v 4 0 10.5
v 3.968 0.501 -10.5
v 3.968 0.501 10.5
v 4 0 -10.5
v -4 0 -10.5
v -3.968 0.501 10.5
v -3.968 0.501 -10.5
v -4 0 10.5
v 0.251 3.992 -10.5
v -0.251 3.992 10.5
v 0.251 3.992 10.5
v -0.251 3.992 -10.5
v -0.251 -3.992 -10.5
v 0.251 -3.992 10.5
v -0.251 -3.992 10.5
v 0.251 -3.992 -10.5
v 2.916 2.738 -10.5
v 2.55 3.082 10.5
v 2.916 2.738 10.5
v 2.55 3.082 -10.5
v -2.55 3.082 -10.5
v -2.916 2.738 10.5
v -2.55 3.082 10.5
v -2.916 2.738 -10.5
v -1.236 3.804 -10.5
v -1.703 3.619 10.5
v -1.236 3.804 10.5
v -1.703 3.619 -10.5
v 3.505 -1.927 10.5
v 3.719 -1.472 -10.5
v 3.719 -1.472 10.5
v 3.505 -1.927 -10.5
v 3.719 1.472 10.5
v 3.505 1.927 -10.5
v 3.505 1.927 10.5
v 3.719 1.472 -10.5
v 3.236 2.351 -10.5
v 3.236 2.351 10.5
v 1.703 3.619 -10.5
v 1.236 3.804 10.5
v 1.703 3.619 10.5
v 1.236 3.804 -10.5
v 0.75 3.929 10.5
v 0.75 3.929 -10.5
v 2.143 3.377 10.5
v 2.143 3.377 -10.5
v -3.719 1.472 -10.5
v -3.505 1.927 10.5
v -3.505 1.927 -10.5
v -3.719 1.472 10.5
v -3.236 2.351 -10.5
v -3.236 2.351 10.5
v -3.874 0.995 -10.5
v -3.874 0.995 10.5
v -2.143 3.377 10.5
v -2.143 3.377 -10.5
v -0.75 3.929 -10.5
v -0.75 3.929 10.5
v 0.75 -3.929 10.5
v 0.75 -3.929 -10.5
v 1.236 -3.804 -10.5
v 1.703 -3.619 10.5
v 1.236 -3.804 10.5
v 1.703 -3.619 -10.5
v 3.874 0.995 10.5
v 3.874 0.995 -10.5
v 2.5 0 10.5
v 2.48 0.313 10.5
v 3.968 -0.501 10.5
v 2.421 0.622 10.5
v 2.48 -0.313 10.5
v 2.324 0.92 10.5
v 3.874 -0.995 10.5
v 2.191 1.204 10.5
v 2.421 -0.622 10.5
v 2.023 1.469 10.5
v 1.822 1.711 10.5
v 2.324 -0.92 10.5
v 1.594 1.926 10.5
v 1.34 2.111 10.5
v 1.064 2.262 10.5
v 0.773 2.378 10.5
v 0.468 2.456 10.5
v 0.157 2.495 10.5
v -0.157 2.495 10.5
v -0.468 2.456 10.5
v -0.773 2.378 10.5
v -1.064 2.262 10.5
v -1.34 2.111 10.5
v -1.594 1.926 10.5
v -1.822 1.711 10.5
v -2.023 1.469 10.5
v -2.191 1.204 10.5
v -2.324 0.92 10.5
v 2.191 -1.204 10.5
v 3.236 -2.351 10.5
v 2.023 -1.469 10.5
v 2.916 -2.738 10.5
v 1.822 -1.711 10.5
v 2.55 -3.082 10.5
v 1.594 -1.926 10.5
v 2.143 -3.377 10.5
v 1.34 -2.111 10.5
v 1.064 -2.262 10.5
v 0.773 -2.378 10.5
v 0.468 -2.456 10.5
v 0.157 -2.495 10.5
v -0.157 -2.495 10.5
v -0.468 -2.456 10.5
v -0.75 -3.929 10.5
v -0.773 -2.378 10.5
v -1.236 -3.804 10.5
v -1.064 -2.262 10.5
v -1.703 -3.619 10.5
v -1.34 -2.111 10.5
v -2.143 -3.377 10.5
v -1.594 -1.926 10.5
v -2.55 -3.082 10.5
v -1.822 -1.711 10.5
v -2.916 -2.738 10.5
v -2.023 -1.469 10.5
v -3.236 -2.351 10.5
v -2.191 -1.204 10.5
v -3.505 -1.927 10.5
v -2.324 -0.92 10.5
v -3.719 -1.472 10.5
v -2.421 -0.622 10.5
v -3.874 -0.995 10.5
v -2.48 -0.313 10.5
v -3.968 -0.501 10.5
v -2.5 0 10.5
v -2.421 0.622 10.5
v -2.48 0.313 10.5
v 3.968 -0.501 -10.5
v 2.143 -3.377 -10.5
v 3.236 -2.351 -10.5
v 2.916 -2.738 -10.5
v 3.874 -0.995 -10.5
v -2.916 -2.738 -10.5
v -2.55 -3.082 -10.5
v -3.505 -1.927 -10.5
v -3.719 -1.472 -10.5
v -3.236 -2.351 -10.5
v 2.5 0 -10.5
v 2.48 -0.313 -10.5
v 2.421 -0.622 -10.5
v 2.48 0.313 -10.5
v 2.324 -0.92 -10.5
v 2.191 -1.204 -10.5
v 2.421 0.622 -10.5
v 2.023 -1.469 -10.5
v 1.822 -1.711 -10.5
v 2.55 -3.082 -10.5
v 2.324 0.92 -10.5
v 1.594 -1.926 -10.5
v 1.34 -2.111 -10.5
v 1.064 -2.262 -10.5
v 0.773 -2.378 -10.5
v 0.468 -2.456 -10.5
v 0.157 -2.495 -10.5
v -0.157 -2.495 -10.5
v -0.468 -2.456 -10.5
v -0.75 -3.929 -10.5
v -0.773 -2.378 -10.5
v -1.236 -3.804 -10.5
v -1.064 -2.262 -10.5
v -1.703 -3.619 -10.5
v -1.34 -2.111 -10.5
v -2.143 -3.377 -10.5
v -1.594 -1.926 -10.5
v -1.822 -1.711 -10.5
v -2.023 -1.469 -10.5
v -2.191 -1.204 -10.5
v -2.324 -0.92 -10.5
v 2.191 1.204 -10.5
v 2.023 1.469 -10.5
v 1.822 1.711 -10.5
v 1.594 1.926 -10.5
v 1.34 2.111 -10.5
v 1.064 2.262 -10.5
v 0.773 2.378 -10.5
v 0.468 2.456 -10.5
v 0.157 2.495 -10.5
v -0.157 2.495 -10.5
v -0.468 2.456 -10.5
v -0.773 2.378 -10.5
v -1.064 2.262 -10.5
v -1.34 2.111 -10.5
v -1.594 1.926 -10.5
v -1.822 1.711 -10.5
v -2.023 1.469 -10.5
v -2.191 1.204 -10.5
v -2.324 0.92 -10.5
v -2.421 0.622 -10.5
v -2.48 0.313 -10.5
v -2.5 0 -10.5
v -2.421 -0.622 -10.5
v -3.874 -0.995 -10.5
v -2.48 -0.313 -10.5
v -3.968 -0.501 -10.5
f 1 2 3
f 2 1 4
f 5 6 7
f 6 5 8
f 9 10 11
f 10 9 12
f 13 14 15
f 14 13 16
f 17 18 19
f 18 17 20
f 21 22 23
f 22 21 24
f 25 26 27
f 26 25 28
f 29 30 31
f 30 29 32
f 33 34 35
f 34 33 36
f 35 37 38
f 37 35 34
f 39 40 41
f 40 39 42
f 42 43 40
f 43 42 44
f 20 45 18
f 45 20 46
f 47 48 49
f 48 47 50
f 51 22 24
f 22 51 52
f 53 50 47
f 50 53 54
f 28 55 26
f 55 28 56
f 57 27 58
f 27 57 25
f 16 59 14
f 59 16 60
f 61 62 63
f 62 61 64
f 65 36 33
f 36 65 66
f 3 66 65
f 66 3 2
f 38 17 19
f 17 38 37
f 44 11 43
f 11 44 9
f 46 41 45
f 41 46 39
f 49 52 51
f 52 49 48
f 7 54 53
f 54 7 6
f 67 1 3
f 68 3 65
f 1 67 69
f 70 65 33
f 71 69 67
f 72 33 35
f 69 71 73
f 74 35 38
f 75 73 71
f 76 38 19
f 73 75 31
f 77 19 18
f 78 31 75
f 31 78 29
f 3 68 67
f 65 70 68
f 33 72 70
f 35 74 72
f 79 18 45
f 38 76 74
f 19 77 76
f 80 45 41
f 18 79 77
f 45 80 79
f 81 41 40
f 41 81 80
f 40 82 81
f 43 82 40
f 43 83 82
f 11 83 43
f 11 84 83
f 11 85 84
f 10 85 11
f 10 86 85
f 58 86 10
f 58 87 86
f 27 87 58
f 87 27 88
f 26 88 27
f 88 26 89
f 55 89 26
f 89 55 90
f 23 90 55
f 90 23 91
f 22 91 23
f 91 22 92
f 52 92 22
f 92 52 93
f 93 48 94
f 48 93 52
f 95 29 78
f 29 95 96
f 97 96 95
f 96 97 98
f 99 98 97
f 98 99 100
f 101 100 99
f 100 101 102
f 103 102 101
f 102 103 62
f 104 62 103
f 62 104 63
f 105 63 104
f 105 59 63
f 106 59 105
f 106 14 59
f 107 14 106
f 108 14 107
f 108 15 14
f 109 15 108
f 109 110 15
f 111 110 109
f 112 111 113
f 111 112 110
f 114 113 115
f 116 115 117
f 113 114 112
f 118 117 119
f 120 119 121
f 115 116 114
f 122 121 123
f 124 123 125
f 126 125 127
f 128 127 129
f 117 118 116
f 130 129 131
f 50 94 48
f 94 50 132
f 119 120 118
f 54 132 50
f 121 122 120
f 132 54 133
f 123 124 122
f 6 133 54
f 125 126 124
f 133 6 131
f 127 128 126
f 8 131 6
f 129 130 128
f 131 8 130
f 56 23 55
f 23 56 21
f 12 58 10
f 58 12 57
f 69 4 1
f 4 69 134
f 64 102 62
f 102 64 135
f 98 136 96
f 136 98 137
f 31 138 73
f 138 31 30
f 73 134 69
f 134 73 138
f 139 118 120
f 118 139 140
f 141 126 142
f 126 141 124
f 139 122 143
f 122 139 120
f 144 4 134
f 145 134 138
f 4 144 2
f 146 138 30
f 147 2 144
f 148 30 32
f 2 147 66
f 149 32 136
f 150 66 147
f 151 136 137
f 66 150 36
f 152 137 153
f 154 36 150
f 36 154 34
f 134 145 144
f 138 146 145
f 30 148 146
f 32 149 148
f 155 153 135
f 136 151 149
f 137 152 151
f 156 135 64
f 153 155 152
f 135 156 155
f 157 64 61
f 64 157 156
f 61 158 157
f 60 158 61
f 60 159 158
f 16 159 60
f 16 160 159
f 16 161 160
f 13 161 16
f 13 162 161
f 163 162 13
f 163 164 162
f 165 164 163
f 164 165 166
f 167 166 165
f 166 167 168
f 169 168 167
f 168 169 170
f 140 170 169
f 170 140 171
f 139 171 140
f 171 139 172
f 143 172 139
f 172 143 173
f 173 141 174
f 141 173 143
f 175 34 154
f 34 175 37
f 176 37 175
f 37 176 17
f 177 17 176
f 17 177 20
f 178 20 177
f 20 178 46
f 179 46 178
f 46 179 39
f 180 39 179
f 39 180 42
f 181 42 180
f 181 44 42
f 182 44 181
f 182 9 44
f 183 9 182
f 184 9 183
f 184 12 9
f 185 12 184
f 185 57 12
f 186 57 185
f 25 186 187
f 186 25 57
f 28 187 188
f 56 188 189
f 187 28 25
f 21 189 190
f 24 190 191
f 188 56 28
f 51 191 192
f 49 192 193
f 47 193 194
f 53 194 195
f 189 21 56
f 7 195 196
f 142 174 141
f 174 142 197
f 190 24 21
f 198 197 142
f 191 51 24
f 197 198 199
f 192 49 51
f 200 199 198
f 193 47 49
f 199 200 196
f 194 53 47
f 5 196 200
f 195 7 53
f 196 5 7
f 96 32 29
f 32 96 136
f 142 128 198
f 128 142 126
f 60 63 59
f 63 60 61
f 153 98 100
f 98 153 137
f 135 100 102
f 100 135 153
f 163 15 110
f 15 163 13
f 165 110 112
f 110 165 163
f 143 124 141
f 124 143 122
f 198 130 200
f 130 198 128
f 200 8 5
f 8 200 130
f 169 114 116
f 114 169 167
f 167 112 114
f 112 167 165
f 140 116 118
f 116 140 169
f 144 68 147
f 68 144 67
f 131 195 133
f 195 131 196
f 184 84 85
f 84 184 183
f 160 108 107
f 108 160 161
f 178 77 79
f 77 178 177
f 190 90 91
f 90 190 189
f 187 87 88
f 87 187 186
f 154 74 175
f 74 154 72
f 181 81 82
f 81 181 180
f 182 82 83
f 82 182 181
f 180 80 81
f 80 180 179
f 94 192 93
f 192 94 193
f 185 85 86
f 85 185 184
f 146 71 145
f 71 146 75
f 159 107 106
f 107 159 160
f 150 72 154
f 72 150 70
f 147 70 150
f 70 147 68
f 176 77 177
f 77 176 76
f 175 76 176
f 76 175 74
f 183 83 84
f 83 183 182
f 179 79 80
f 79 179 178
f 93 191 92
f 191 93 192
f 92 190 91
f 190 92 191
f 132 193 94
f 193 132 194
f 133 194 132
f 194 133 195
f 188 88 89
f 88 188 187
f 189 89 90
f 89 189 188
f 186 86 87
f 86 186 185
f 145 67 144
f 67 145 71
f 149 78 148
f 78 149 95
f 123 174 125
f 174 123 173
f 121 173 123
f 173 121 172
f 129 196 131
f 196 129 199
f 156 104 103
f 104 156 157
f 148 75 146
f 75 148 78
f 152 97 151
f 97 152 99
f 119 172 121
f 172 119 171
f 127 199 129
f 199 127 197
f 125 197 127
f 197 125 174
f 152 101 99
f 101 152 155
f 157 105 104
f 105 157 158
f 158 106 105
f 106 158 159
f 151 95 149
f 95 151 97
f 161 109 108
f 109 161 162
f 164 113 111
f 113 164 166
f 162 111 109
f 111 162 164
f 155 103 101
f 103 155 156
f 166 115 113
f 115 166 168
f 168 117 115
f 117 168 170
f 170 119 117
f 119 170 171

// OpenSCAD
$fn = 50;


difference() {
	union() {
		translate(v = [0, 0, -10.5000000000]) {
			cylinder(h = 21, r = 4.0000000000);
		}
	}
	union() {
		translate(v = [0, 0, -100.0000000000]) {
			cylinder(h = 200, r = 2.5000000000);
		}
	}
}
